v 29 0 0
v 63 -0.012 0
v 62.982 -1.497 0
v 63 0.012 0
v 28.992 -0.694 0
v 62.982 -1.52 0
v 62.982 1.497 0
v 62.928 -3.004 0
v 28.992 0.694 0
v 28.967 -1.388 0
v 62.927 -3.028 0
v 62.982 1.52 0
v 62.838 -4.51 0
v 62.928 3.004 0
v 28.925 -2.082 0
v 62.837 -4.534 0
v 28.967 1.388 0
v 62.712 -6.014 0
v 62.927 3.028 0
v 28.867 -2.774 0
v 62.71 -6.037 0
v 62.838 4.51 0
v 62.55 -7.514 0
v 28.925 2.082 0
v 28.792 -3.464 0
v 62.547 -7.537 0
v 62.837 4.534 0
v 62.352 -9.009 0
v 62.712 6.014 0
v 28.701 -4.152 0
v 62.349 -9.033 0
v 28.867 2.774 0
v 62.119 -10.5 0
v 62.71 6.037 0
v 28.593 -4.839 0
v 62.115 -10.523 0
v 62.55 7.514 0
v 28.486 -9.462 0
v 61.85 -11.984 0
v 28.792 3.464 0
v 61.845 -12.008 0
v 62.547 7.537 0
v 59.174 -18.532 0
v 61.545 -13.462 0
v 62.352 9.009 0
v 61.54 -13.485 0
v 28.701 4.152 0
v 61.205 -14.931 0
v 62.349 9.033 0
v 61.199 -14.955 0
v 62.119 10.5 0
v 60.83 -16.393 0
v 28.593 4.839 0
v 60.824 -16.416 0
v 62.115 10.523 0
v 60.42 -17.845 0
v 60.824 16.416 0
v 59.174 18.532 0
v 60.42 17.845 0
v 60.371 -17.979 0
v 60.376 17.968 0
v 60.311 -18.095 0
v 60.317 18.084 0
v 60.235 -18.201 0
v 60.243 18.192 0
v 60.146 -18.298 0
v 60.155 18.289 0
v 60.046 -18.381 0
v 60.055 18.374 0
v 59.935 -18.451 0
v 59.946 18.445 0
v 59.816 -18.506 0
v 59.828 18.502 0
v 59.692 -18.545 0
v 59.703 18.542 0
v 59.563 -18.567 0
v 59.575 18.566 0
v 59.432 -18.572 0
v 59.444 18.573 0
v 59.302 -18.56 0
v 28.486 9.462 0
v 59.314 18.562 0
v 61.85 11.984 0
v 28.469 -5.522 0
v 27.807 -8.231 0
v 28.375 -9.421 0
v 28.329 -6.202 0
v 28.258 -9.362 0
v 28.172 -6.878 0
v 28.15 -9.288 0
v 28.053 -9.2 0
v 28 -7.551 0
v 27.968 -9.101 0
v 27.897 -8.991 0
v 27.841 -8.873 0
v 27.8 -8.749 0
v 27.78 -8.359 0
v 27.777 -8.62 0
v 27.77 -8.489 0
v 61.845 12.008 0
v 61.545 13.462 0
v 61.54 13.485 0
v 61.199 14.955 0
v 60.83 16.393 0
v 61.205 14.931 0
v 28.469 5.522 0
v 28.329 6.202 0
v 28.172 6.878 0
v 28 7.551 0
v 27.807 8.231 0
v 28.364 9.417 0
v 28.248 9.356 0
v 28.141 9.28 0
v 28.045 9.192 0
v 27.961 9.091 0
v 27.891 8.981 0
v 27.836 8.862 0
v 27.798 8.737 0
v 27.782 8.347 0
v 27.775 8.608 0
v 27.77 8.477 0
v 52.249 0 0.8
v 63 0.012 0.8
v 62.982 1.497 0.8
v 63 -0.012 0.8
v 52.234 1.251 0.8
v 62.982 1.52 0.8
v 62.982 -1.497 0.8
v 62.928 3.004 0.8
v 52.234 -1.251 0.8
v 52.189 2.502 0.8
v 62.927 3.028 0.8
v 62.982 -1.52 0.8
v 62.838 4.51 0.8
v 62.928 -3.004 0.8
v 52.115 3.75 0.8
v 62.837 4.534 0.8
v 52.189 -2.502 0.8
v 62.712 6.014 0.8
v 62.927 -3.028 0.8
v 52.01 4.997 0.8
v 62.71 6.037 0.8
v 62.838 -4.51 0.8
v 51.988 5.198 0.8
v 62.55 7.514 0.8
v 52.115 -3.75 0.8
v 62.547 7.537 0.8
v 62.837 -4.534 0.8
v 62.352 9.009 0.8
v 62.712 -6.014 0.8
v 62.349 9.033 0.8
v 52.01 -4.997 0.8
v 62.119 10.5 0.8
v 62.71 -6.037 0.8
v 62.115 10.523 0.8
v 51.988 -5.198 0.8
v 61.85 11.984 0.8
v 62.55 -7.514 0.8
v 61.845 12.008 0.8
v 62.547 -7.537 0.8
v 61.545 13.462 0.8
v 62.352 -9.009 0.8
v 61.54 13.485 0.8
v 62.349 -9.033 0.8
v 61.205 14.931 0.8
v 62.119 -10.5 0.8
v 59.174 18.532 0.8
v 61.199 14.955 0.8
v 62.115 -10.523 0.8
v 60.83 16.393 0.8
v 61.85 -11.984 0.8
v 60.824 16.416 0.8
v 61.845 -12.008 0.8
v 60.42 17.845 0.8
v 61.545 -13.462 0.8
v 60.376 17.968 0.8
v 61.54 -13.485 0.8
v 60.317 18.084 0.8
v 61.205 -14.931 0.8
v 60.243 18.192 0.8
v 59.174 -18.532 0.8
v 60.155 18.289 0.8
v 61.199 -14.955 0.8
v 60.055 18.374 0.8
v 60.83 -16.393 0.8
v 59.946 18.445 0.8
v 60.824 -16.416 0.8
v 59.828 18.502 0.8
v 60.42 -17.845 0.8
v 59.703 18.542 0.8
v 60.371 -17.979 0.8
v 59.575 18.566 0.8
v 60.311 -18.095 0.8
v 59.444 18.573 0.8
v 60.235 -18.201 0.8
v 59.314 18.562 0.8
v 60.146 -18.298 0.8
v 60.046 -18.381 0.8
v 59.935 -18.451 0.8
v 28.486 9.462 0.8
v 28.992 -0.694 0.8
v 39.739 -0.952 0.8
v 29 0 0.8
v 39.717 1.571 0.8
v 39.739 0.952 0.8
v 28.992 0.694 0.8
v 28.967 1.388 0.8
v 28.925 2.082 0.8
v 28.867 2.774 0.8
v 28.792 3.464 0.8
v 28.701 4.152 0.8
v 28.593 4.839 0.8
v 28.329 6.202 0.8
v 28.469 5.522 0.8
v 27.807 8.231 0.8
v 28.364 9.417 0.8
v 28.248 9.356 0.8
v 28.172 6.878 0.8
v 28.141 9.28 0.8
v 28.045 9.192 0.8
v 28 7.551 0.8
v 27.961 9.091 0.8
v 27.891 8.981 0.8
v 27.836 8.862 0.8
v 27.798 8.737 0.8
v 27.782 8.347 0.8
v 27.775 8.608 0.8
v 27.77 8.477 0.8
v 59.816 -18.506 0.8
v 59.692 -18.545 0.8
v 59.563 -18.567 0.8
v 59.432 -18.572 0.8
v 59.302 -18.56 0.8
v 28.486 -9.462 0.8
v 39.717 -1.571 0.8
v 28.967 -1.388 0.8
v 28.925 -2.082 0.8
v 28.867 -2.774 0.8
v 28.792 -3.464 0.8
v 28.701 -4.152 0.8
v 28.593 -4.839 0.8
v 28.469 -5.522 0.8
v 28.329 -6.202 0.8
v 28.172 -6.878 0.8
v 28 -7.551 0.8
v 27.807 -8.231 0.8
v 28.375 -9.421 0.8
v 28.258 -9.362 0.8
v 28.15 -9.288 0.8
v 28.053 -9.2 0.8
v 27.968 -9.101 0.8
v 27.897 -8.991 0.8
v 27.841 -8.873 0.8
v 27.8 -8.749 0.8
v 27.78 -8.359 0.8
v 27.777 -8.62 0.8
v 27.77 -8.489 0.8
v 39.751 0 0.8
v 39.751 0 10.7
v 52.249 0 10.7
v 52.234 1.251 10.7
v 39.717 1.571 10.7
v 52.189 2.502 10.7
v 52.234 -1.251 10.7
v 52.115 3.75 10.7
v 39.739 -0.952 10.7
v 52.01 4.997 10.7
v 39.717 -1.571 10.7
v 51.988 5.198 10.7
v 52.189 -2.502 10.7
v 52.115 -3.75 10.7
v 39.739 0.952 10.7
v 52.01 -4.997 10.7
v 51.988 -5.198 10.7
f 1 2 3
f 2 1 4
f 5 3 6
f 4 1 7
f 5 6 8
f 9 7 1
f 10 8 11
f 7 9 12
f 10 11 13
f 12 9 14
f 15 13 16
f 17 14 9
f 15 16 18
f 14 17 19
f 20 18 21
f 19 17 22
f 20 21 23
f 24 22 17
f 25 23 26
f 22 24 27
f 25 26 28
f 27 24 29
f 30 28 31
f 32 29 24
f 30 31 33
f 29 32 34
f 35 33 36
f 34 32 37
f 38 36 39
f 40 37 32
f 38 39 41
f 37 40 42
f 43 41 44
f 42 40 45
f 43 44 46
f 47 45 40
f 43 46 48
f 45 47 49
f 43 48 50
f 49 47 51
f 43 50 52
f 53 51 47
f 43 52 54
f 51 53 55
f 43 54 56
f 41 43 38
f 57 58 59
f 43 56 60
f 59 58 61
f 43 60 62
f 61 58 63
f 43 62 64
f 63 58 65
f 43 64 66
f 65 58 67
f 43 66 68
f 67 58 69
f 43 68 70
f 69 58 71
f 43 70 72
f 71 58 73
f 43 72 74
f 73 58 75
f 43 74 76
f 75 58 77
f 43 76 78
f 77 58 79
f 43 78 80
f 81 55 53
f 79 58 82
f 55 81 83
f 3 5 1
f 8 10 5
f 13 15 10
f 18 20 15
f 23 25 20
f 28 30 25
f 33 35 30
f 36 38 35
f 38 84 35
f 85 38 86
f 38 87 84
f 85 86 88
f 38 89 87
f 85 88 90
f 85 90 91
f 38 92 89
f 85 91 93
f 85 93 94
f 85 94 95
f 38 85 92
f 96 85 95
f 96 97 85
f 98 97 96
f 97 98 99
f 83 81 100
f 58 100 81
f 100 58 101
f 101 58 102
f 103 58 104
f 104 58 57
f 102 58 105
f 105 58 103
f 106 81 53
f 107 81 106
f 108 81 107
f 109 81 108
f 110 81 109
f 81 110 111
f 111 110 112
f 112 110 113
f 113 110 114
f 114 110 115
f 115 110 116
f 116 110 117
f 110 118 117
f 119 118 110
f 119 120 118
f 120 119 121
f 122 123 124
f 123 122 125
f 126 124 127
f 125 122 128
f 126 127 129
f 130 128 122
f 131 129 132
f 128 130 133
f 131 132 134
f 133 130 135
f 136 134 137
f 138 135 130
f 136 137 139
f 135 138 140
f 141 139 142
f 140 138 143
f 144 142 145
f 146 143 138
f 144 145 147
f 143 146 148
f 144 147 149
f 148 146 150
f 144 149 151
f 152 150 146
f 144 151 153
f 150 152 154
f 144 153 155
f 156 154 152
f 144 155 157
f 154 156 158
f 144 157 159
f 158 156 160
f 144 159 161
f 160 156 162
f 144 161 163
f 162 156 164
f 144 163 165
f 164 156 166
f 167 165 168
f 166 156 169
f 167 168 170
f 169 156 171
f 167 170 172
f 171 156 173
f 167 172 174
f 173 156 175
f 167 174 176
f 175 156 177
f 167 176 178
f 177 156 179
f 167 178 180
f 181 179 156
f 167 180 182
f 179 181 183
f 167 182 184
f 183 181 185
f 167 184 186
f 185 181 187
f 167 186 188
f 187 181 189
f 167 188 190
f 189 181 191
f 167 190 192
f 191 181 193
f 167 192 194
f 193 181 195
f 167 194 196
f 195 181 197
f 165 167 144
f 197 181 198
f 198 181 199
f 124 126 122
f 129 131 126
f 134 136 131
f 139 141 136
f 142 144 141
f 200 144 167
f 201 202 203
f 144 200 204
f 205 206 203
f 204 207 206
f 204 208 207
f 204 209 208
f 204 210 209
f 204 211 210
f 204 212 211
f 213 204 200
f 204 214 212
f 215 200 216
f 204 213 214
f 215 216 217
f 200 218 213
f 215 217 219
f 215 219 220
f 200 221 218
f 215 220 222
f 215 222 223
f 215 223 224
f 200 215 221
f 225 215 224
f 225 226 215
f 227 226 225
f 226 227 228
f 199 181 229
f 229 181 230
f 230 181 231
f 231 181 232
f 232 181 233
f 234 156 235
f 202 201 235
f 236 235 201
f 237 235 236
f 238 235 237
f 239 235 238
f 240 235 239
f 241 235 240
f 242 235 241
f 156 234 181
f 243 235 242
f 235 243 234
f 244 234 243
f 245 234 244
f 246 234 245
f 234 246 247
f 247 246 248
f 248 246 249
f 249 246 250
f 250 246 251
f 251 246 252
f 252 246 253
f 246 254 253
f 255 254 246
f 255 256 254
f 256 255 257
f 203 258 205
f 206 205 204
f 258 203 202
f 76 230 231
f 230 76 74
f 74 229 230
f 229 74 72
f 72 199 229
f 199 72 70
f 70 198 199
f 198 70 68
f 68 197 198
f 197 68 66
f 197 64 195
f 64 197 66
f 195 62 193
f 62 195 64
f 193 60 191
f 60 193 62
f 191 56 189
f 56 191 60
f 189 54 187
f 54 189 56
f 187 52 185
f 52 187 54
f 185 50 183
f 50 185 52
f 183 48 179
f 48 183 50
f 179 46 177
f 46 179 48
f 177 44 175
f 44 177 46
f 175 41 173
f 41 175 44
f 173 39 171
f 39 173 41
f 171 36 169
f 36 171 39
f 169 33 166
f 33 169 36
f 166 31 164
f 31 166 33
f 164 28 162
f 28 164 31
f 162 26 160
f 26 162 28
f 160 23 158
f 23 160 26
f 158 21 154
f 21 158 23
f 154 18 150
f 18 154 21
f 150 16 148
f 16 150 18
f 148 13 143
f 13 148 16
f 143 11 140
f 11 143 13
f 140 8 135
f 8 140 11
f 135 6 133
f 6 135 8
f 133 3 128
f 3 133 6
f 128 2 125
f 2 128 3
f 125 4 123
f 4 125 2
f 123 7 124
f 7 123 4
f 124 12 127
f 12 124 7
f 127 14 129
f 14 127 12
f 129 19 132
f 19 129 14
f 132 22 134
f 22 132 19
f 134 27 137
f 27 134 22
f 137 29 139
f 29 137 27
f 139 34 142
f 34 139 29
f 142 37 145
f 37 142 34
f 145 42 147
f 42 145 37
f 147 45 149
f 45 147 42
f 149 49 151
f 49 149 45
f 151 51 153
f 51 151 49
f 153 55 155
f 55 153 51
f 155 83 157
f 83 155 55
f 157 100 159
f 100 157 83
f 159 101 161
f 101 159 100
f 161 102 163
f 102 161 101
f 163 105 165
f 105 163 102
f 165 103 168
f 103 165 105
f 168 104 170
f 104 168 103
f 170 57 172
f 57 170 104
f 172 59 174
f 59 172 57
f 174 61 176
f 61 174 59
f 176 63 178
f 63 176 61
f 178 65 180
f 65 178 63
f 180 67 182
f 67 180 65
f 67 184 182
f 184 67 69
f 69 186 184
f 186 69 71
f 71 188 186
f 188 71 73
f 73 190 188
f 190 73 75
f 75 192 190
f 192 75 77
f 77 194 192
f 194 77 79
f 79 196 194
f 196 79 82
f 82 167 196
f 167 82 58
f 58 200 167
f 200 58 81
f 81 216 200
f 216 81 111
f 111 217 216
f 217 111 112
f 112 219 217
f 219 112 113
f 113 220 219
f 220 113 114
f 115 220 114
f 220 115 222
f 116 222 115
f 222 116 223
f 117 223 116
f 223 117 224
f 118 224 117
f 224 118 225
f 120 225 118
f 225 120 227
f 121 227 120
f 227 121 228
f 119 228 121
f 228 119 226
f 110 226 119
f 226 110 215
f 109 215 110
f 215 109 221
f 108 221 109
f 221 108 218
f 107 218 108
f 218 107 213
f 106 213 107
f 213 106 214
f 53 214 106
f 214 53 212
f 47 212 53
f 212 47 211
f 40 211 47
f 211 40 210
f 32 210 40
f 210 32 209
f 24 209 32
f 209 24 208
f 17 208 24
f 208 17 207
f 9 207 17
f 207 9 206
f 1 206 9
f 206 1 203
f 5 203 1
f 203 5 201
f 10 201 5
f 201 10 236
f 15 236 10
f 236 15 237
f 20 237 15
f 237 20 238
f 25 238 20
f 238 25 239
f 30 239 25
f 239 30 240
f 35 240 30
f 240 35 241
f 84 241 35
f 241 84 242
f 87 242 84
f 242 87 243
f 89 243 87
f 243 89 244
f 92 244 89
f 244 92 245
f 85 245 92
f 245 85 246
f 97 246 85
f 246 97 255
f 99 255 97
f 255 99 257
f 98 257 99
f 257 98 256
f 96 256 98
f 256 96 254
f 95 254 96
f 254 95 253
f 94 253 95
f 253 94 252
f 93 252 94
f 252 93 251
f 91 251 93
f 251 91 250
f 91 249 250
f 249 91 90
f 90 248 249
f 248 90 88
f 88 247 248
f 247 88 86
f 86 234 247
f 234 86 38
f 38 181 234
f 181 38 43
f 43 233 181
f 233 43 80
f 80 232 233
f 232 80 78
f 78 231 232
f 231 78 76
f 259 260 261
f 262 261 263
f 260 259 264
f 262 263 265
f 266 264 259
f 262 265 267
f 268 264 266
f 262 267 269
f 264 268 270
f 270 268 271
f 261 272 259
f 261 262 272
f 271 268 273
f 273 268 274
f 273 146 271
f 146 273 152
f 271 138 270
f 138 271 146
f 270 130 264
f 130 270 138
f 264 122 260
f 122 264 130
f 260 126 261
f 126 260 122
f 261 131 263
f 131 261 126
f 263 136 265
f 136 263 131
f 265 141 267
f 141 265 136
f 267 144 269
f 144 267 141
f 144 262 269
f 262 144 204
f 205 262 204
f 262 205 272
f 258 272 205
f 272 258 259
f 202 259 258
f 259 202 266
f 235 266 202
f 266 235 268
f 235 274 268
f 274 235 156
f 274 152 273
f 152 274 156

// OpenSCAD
// file: parameters.scad
// =============================================================================
// Gen-BG — nightly 2026-10-04 (physics_scorer, honest magpylib watts)
// 8-pole / 9-coil dual rotor (best winding factor 0.945) pushed out to RL 46 with 9.9 mm tall copper on steel-seated magnets; 3 smaller coils per phase and less wire (257 m) than 6-coil.
// Clocking 0 deg (magnets N facing S) + D-flat keyed bore + index notch + flip-symmetric hole map.
// Windable 2-piece bobbin; turns = physics_scorer turns_fit; copper only between flanges.
// Steel back-iron: two 3.0 mm mild-steel discs (steel_backiron_disc.dxf); magnets sit ON the steel
// (through-pockets) -> score with --back-iron.
// =============================================================================
topology            = "dual_rotor";

// --- Wire / winding (physics_scorer winding-fit) -------------------------------
wire_awg            = 26;
wire_od             = 0.45;     // insulated OD mm (bare 0.405)
fill_realistic      = 0.60;     // insulated-wire area / window, hand-wound layered
turns               = 364;       // = physics_scorer turns_fit (do NOT raise)
coil_former_type    = "bobbin";
coil_core_inset     = 9.75;     // radial copper build: hub = copper boundary inset by this
wind_build_axial    = 0.0;      // nothing proud of the flanges
wind_build_radial   = 0.0;

// --- Bobbin (base + lid) ---------------------------------------------------------
coil_id_r           = 30.00;    // copper boundary sector
coil_od_r           = 62.00;
span_deg            = 32.93;    // = pitch - 2*asin((wall+0.85)/coil_id_r) -> >=1.2 mm stator web
former_web          = 9.90;     // copper height between flanges (TALL copper: steel keeps Bz up)
flange_t            = 0.80;     // >= 0.8 mm FDM wall rule (tall winds push on the flanges)
wall                = 1.00;     // flange lip beyond copper
former_bare_h       = former_web + 2 * flange_t;
coil_envelope_h     = former_bare_h + 2 * wind_build_axial;
tab_w               = 7.0;
tab_len             = 7.0;
tab_h               = former_bare_h / 2;
pin_d               = 1.9;      // 1.75 mm filament locating pin
coil_mount_r        = coil_od_r + 0.2 + 4.0;
lead_y              = 1.6;
lead_slot_w         = 0.9;
lead_groove_d       = 0.6;

// --- Gap -------------------------------------------------------------------------
run_clear           = 0.50;     // rotor face -> flange
gap_spacer_h        = run_clear + wind_build_axial;
m2m                 = coil_envelope_h + 2 * run_clear;   // rotor face to rotor face (= gap_sleeve length)

// --- Stator ----------------------------------------------------------------------
coil_stations       = 9;
bay_clear           = 0.25;
stator_thick        = former_bare_h;                        // bobbins flush both faces
stator_od           = 157.0;
shaft_clear_stator  = 14.0;     // stator is static; gap sleeve OD 12 spins inside

// --- Rotor(s) --------------------------------------------------------------------
magnet_Br           = 1.43;     // N52
magnet_d_large      = 20.0;
magnet_h_large      = 5.0;      // one O20x5 per pocket
magnet_h_small      = 5.0;      // one O5x5 per pocket
halbach_magnetisation = "diametric"; // O5x5 assist magnets MUST be DIAMETRICALLY magnetised (tangential)
rotor_b_same_axis   = true;     // same-index magnets share one axis: N faces S across the gap
large_pocket_d      = 20.3;
small_pocket_d      = 5.3;
pocket_h            = 5.10;     // THROUGH the carrier: magnet back face sits on the steel disc
large_n             = 8;
R_large             = 46.0;
R_small_inner       = 32.0;
R_small_mid         = 46.0;
R_small_outer       = 63.0;
small_r_list        = [R_small_inner, R_small_mid, R_small_outer];   // O5 pockets between poles
carrier_od          = 135.0;
carrier_thick       = pocket_h;
hub_h               = 10.0;
hub_od              = 24.0;     // slim hub so the M4 brace rods fit at R~18 inside the coil ring
hub_insert_d        = 4.0;      // M3 heat-set insert, radial, bears on the D-flat
rotor_b_offset_deg  = 0.0;      // CLOCKING: magnets directly opposite
shaft_key           = "dflat";
dflat_depth         = 0.5;      // 8 mm shaft with 0.5 mm flat (7.5 across flat)
index_notch_d       = 3.0;

// --- Steel back-iron (buyable laser-cut) -------------------------------------------
steel_t             = 3.0;      // mild steel thickness (not modelled by the image method; >=3 avoids saturation)
steel_center_hole   = 26.0;     // slips over the rotor hub (OD 24)

// --- Modular MAX interface ----------------------------------------------------------
shaft_bore          = 8.35;
dflat_x             = 4.0 - dflat_depth + (shaft_bore - 8.0) / 2;
bearing_d           = 21.85;
bearing_h           = 7.2;
m3_clear            = 3.5;
bolt_r_inner        = 27.0;     // M3 steel-disc clamp bolts (inside the magnet ring)
bolt_n_inner        = 4;
bolt_inner_angles   = [0, 90, 180, 270];
bolt_r_outer        = 59.0;     // M3 steel-disc clamp bolts (outside the magnet ring)
bolt_outer_angles   = [0, 90, 180, 270];
flange_bolt_r       = 73.5;     // frame rods: OUTSIDE the rotor OD (rotors spin inside them)
flange_bolt_n       = 9;
flange_bolt_offset  = 20.00;    // between coil stations -> never cuts a lead groove/tab
brace_r             = 18.0;
brace_d             = 4.3;      // temporary M4 jack rods (assembly only)
brace_n             = 4;
brace_angles        = [45, 135, 225, 315];          // flip-symmetric

spacer_pad_od       = 14.0;
spacer_pad_id       = m3_clear;
endbell_od          = 157.0;
endbell_thick       = 8.0;
endbell_shaft_clear = 10.0;
collar_h            = 10.0;
standoff_od         = 9.0;
frame_standoff_h    = run_clear + carrier_thick + hub_h + collar_h + 2.0;
sleeve_od           = 12.0;
plate_max_mm        = 410;

$fn = 64;
// main file
// Gen-BG — bobbin BASE (bottom flange + hub). Print x9, flange down. Wind 26 AWG x 364 t around
// the hub with the LID glued on (coil_lid.stl). Copper lives ONLY between the flanges (no proud winds).
include <parameters.scad>;
$fn = 48;
module sector_2d(r_in, r_out, ang) {
    polygon([
        for (a = [-ang/2 : ang/24 : ang/2]) [r_in*cos(a), r_in*sin(a)],
        for (a = [ang/2 : -ang/24 : -ang/2]) [r_out*cos(a), r_out*sin(a)]
    ]);
}
module footprint_2d() { offset(r=wall) sector_2d(coil_id_r, coil_od_r, span_deg); }
module hub_2d()       { offset(delta=-coil_core_inset) sector_2d(coil_id_r, coil_od_r, span_deg); }

union() {
    linear_extrude(flange_t) footprint_2d();
    translate([0, 0, flange_t - 0.01]) linear_extrude(former_web + 0.01) hub_2d();
}
